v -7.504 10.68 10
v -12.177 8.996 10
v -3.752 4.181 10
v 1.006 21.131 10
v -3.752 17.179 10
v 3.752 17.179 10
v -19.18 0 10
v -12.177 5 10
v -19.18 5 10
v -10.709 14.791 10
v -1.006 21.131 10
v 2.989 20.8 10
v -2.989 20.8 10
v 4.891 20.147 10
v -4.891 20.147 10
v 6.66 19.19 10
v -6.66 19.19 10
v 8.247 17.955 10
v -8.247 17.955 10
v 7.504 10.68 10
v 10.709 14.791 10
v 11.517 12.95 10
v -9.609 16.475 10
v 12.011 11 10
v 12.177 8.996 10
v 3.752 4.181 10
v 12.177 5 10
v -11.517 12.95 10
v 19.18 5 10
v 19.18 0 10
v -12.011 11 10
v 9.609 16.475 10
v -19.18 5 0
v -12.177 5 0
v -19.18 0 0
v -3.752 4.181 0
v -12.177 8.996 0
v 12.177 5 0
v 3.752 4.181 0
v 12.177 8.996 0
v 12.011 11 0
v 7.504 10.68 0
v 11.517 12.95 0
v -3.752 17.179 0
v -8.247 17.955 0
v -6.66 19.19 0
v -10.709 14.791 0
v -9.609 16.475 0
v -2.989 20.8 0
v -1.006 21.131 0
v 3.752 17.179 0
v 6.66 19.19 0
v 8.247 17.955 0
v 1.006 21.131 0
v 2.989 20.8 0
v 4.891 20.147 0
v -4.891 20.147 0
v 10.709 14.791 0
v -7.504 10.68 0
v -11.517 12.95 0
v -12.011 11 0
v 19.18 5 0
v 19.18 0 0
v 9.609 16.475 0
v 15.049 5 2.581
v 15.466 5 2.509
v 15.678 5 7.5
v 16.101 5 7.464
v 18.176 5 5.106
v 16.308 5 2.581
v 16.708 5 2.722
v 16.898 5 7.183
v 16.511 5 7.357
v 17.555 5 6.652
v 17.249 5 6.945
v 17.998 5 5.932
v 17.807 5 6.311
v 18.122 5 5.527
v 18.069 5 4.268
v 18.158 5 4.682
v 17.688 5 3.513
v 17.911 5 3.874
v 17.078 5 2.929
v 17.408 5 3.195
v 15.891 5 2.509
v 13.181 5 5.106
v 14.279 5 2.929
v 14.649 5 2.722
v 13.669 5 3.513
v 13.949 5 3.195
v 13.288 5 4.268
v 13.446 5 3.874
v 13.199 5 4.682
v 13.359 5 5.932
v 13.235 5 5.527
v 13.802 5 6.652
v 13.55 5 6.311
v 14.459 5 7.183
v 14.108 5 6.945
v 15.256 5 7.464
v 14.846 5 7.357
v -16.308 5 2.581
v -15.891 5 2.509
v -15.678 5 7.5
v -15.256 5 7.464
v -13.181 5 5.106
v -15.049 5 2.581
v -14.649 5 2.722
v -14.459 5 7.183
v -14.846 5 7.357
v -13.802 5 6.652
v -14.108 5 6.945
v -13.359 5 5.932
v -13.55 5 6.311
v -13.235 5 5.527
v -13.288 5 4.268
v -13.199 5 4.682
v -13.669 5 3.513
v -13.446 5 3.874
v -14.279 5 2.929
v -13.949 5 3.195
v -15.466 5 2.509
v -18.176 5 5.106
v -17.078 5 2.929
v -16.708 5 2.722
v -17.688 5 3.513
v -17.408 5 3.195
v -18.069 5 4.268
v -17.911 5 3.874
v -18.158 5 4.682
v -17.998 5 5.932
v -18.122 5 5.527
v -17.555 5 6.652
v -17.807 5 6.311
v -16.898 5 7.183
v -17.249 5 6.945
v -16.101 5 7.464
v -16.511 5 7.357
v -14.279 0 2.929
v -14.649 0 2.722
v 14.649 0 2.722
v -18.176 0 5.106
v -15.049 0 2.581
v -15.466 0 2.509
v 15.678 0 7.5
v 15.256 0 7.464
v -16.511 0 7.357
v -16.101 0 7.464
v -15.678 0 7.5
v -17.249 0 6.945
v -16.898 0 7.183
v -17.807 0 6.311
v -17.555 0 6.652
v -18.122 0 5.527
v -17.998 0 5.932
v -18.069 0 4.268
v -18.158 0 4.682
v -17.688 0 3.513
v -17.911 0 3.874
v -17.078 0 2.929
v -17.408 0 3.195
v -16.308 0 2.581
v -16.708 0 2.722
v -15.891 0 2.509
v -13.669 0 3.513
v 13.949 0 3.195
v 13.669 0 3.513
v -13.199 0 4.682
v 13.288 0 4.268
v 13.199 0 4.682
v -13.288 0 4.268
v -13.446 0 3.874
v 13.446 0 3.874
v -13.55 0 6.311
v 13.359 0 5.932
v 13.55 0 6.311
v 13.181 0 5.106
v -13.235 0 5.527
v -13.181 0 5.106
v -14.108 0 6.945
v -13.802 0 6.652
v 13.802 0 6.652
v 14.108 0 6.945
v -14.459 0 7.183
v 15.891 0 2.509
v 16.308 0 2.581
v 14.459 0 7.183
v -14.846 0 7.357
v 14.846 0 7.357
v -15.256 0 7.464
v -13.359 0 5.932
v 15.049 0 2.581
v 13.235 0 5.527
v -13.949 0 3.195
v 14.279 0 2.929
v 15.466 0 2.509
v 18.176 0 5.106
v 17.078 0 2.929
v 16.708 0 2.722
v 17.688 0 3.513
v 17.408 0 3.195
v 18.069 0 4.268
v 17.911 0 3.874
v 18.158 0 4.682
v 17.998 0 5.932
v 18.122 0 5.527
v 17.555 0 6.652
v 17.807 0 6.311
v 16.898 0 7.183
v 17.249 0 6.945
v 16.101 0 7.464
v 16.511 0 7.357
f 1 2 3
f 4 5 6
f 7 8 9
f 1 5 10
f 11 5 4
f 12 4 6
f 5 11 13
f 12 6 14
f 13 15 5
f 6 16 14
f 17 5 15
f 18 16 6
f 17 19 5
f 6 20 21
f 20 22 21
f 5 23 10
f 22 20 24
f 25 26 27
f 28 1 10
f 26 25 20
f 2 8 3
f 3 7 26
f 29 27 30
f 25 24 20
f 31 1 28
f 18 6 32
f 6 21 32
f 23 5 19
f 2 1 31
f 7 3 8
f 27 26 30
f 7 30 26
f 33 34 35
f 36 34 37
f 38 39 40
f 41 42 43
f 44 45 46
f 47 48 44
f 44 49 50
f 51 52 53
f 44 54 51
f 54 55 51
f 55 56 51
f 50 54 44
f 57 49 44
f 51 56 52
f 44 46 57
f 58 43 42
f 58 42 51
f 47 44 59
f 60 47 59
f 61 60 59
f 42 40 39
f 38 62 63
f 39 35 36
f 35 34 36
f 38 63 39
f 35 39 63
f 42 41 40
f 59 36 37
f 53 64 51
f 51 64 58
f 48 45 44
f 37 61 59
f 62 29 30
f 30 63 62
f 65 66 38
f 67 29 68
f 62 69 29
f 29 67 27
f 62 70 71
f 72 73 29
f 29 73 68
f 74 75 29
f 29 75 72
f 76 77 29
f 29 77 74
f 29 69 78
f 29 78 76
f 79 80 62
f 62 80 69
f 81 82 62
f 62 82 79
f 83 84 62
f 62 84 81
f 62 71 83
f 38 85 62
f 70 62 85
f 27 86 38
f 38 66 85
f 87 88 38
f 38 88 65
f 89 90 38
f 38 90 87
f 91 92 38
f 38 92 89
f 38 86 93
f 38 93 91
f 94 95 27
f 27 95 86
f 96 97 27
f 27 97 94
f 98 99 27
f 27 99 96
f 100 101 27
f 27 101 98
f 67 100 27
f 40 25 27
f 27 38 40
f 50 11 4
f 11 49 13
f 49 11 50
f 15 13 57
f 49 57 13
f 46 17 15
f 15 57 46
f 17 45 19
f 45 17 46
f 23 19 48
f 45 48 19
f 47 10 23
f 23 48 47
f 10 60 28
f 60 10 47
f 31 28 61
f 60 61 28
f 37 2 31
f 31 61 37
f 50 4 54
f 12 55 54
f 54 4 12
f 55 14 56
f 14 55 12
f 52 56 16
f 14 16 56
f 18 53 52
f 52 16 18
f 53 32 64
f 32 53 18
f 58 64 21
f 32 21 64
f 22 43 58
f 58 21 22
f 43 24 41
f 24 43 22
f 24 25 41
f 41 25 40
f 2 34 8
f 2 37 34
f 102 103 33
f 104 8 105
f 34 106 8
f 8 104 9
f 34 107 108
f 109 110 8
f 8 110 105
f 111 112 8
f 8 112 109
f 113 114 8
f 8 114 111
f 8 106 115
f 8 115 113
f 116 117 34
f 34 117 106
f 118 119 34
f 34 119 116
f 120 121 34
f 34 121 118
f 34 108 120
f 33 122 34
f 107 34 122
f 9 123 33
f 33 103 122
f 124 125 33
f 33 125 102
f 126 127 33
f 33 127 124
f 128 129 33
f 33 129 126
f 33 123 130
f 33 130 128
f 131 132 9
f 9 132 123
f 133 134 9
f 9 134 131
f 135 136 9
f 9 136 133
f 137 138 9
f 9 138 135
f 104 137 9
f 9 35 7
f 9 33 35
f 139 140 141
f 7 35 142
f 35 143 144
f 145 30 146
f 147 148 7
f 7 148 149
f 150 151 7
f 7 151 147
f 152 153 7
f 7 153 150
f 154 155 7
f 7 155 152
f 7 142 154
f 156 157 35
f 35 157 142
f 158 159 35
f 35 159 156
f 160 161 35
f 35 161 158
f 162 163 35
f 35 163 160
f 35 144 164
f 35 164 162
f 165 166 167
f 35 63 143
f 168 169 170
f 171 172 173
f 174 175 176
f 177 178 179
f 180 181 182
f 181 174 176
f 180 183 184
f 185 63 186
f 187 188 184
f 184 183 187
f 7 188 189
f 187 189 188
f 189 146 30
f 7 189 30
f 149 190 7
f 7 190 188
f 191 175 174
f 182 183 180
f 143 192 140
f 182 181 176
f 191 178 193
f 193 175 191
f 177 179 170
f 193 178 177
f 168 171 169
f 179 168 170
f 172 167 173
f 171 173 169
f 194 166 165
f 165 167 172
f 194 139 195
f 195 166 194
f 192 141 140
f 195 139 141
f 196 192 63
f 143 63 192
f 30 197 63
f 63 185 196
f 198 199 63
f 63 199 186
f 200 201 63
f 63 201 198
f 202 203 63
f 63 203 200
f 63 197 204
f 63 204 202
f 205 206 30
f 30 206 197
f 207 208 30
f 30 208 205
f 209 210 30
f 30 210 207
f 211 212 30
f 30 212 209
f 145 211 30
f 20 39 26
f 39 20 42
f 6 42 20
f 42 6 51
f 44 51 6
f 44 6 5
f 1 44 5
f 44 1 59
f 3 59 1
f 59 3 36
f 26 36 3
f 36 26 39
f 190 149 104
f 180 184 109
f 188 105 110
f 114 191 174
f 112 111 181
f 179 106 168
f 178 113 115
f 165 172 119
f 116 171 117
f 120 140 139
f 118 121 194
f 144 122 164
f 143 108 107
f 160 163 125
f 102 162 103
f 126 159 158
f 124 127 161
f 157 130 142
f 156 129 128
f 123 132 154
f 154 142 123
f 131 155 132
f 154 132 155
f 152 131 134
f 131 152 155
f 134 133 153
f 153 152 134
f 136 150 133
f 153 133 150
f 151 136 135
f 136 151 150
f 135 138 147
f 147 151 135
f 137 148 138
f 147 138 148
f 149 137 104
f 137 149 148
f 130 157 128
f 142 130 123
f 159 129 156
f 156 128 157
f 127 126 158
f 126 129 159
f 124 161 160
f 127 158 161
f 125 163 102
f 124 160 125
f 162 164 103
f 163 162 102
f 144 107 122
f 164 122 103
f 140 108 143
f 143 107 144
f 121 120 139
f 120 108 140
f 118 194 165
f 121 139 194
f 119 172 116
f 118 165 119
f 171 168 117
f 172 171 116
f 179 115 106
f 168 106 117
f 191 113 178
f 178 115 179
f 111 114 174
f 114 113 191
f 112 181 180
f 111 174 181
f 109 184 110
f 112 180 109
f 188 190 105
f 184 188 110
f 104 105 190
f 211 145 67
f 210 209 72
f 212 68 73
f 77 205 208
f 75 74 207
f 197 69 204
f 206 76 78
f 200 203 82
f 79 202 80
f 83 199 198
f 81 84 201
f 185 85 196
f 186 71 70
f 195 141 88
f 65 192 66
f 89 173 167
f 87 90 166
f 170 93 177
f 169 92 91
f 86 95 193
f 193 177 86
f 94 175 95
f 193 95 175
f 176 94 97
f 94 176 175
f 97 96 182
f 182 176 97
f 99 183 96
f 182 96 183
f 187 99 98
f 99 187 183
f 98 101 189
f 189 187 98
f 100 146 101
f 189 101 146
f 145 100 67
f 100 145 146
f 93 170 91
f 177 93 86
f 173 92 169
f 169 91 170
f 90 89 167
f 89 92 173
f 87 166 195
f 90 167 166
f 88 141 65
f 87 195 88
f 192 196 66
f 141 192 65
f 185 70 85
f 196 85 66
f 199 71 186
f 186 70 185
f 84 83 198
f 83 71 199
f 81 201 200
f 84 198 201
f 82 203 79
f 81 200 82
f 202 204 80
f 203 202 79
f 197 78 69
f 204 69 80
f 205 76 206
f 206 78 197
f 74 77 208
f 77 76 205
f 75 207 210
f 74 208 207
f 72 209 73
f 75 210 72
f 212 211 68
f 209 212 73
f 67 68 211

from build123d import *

# Parameters (mm, degrees)
BOSS_EXTRUDE1_DEPTH = 10
SKETCH2_R           = 2.5
CUT_EXTRUDE1_DEPTH  = 10


with BuildPart() as part:
    # Sketch1 → Boss-Extrude1 (new body)
    with BuildSketch(Plane.XY):
        with BuildLine():
            Line((-16, 0), (16, 0))
            Line((16, 0), (19.18, 0))
            Line((19.18, 0), (19.18, 5))
            Line((19.18, 5), (16, 5))
            Line((16, 5), (12.17699115, 5))
            Line((12.17699115, 5), (12.17699115, 8.995638399))
            ThreePointArc((12.17699115, 8.995638399), (0, 21.172629549), (-12.17699115, 8.995638399))
            Line((-12.17699115, 8.995638399), (-12.17699115, 5))
            Line((-12.17699115, 5), (-16, 5))
            Line((-16, 5), (-19.18, 5))
            Line((-19.18, 5), (-19.18, 0))
            Line((-19.18, 0), (-16, 0))
        make_face()
        Polygon((7.504424779, 10.68), (3.752212389, 17.179022499), (-3.752212389, 17.179022499), (-7.504424779, 10.68), (-3.752212389, 4.180977501), (3.752212389, 4.180977501), align=None, mode=Mode.SUBTRACT)
    extrude(amount=BOSS_EXTRUDE1_DEPTH)

    # Sketch2 → Cut-Extrude1 (cut)
    with BuildSketch(Plane(origin=(0, 5, 0), x_dir=(1, 0, 0), z_dir=(0, 1, 0))):
        with Locations(Location((15.678495575, -5, 0), (0, 0, 270))):
            Circle(SKETCH2_R)
        with Locations(Location((-15.678495575, -5, 0), (0, 0, 270))):
            Circle(SKETCH2_R)
    extrude(amount=-CUT_EXTRUDE1_DEPTH, mode=Mode.SUBTRACT)


solid = part.part
